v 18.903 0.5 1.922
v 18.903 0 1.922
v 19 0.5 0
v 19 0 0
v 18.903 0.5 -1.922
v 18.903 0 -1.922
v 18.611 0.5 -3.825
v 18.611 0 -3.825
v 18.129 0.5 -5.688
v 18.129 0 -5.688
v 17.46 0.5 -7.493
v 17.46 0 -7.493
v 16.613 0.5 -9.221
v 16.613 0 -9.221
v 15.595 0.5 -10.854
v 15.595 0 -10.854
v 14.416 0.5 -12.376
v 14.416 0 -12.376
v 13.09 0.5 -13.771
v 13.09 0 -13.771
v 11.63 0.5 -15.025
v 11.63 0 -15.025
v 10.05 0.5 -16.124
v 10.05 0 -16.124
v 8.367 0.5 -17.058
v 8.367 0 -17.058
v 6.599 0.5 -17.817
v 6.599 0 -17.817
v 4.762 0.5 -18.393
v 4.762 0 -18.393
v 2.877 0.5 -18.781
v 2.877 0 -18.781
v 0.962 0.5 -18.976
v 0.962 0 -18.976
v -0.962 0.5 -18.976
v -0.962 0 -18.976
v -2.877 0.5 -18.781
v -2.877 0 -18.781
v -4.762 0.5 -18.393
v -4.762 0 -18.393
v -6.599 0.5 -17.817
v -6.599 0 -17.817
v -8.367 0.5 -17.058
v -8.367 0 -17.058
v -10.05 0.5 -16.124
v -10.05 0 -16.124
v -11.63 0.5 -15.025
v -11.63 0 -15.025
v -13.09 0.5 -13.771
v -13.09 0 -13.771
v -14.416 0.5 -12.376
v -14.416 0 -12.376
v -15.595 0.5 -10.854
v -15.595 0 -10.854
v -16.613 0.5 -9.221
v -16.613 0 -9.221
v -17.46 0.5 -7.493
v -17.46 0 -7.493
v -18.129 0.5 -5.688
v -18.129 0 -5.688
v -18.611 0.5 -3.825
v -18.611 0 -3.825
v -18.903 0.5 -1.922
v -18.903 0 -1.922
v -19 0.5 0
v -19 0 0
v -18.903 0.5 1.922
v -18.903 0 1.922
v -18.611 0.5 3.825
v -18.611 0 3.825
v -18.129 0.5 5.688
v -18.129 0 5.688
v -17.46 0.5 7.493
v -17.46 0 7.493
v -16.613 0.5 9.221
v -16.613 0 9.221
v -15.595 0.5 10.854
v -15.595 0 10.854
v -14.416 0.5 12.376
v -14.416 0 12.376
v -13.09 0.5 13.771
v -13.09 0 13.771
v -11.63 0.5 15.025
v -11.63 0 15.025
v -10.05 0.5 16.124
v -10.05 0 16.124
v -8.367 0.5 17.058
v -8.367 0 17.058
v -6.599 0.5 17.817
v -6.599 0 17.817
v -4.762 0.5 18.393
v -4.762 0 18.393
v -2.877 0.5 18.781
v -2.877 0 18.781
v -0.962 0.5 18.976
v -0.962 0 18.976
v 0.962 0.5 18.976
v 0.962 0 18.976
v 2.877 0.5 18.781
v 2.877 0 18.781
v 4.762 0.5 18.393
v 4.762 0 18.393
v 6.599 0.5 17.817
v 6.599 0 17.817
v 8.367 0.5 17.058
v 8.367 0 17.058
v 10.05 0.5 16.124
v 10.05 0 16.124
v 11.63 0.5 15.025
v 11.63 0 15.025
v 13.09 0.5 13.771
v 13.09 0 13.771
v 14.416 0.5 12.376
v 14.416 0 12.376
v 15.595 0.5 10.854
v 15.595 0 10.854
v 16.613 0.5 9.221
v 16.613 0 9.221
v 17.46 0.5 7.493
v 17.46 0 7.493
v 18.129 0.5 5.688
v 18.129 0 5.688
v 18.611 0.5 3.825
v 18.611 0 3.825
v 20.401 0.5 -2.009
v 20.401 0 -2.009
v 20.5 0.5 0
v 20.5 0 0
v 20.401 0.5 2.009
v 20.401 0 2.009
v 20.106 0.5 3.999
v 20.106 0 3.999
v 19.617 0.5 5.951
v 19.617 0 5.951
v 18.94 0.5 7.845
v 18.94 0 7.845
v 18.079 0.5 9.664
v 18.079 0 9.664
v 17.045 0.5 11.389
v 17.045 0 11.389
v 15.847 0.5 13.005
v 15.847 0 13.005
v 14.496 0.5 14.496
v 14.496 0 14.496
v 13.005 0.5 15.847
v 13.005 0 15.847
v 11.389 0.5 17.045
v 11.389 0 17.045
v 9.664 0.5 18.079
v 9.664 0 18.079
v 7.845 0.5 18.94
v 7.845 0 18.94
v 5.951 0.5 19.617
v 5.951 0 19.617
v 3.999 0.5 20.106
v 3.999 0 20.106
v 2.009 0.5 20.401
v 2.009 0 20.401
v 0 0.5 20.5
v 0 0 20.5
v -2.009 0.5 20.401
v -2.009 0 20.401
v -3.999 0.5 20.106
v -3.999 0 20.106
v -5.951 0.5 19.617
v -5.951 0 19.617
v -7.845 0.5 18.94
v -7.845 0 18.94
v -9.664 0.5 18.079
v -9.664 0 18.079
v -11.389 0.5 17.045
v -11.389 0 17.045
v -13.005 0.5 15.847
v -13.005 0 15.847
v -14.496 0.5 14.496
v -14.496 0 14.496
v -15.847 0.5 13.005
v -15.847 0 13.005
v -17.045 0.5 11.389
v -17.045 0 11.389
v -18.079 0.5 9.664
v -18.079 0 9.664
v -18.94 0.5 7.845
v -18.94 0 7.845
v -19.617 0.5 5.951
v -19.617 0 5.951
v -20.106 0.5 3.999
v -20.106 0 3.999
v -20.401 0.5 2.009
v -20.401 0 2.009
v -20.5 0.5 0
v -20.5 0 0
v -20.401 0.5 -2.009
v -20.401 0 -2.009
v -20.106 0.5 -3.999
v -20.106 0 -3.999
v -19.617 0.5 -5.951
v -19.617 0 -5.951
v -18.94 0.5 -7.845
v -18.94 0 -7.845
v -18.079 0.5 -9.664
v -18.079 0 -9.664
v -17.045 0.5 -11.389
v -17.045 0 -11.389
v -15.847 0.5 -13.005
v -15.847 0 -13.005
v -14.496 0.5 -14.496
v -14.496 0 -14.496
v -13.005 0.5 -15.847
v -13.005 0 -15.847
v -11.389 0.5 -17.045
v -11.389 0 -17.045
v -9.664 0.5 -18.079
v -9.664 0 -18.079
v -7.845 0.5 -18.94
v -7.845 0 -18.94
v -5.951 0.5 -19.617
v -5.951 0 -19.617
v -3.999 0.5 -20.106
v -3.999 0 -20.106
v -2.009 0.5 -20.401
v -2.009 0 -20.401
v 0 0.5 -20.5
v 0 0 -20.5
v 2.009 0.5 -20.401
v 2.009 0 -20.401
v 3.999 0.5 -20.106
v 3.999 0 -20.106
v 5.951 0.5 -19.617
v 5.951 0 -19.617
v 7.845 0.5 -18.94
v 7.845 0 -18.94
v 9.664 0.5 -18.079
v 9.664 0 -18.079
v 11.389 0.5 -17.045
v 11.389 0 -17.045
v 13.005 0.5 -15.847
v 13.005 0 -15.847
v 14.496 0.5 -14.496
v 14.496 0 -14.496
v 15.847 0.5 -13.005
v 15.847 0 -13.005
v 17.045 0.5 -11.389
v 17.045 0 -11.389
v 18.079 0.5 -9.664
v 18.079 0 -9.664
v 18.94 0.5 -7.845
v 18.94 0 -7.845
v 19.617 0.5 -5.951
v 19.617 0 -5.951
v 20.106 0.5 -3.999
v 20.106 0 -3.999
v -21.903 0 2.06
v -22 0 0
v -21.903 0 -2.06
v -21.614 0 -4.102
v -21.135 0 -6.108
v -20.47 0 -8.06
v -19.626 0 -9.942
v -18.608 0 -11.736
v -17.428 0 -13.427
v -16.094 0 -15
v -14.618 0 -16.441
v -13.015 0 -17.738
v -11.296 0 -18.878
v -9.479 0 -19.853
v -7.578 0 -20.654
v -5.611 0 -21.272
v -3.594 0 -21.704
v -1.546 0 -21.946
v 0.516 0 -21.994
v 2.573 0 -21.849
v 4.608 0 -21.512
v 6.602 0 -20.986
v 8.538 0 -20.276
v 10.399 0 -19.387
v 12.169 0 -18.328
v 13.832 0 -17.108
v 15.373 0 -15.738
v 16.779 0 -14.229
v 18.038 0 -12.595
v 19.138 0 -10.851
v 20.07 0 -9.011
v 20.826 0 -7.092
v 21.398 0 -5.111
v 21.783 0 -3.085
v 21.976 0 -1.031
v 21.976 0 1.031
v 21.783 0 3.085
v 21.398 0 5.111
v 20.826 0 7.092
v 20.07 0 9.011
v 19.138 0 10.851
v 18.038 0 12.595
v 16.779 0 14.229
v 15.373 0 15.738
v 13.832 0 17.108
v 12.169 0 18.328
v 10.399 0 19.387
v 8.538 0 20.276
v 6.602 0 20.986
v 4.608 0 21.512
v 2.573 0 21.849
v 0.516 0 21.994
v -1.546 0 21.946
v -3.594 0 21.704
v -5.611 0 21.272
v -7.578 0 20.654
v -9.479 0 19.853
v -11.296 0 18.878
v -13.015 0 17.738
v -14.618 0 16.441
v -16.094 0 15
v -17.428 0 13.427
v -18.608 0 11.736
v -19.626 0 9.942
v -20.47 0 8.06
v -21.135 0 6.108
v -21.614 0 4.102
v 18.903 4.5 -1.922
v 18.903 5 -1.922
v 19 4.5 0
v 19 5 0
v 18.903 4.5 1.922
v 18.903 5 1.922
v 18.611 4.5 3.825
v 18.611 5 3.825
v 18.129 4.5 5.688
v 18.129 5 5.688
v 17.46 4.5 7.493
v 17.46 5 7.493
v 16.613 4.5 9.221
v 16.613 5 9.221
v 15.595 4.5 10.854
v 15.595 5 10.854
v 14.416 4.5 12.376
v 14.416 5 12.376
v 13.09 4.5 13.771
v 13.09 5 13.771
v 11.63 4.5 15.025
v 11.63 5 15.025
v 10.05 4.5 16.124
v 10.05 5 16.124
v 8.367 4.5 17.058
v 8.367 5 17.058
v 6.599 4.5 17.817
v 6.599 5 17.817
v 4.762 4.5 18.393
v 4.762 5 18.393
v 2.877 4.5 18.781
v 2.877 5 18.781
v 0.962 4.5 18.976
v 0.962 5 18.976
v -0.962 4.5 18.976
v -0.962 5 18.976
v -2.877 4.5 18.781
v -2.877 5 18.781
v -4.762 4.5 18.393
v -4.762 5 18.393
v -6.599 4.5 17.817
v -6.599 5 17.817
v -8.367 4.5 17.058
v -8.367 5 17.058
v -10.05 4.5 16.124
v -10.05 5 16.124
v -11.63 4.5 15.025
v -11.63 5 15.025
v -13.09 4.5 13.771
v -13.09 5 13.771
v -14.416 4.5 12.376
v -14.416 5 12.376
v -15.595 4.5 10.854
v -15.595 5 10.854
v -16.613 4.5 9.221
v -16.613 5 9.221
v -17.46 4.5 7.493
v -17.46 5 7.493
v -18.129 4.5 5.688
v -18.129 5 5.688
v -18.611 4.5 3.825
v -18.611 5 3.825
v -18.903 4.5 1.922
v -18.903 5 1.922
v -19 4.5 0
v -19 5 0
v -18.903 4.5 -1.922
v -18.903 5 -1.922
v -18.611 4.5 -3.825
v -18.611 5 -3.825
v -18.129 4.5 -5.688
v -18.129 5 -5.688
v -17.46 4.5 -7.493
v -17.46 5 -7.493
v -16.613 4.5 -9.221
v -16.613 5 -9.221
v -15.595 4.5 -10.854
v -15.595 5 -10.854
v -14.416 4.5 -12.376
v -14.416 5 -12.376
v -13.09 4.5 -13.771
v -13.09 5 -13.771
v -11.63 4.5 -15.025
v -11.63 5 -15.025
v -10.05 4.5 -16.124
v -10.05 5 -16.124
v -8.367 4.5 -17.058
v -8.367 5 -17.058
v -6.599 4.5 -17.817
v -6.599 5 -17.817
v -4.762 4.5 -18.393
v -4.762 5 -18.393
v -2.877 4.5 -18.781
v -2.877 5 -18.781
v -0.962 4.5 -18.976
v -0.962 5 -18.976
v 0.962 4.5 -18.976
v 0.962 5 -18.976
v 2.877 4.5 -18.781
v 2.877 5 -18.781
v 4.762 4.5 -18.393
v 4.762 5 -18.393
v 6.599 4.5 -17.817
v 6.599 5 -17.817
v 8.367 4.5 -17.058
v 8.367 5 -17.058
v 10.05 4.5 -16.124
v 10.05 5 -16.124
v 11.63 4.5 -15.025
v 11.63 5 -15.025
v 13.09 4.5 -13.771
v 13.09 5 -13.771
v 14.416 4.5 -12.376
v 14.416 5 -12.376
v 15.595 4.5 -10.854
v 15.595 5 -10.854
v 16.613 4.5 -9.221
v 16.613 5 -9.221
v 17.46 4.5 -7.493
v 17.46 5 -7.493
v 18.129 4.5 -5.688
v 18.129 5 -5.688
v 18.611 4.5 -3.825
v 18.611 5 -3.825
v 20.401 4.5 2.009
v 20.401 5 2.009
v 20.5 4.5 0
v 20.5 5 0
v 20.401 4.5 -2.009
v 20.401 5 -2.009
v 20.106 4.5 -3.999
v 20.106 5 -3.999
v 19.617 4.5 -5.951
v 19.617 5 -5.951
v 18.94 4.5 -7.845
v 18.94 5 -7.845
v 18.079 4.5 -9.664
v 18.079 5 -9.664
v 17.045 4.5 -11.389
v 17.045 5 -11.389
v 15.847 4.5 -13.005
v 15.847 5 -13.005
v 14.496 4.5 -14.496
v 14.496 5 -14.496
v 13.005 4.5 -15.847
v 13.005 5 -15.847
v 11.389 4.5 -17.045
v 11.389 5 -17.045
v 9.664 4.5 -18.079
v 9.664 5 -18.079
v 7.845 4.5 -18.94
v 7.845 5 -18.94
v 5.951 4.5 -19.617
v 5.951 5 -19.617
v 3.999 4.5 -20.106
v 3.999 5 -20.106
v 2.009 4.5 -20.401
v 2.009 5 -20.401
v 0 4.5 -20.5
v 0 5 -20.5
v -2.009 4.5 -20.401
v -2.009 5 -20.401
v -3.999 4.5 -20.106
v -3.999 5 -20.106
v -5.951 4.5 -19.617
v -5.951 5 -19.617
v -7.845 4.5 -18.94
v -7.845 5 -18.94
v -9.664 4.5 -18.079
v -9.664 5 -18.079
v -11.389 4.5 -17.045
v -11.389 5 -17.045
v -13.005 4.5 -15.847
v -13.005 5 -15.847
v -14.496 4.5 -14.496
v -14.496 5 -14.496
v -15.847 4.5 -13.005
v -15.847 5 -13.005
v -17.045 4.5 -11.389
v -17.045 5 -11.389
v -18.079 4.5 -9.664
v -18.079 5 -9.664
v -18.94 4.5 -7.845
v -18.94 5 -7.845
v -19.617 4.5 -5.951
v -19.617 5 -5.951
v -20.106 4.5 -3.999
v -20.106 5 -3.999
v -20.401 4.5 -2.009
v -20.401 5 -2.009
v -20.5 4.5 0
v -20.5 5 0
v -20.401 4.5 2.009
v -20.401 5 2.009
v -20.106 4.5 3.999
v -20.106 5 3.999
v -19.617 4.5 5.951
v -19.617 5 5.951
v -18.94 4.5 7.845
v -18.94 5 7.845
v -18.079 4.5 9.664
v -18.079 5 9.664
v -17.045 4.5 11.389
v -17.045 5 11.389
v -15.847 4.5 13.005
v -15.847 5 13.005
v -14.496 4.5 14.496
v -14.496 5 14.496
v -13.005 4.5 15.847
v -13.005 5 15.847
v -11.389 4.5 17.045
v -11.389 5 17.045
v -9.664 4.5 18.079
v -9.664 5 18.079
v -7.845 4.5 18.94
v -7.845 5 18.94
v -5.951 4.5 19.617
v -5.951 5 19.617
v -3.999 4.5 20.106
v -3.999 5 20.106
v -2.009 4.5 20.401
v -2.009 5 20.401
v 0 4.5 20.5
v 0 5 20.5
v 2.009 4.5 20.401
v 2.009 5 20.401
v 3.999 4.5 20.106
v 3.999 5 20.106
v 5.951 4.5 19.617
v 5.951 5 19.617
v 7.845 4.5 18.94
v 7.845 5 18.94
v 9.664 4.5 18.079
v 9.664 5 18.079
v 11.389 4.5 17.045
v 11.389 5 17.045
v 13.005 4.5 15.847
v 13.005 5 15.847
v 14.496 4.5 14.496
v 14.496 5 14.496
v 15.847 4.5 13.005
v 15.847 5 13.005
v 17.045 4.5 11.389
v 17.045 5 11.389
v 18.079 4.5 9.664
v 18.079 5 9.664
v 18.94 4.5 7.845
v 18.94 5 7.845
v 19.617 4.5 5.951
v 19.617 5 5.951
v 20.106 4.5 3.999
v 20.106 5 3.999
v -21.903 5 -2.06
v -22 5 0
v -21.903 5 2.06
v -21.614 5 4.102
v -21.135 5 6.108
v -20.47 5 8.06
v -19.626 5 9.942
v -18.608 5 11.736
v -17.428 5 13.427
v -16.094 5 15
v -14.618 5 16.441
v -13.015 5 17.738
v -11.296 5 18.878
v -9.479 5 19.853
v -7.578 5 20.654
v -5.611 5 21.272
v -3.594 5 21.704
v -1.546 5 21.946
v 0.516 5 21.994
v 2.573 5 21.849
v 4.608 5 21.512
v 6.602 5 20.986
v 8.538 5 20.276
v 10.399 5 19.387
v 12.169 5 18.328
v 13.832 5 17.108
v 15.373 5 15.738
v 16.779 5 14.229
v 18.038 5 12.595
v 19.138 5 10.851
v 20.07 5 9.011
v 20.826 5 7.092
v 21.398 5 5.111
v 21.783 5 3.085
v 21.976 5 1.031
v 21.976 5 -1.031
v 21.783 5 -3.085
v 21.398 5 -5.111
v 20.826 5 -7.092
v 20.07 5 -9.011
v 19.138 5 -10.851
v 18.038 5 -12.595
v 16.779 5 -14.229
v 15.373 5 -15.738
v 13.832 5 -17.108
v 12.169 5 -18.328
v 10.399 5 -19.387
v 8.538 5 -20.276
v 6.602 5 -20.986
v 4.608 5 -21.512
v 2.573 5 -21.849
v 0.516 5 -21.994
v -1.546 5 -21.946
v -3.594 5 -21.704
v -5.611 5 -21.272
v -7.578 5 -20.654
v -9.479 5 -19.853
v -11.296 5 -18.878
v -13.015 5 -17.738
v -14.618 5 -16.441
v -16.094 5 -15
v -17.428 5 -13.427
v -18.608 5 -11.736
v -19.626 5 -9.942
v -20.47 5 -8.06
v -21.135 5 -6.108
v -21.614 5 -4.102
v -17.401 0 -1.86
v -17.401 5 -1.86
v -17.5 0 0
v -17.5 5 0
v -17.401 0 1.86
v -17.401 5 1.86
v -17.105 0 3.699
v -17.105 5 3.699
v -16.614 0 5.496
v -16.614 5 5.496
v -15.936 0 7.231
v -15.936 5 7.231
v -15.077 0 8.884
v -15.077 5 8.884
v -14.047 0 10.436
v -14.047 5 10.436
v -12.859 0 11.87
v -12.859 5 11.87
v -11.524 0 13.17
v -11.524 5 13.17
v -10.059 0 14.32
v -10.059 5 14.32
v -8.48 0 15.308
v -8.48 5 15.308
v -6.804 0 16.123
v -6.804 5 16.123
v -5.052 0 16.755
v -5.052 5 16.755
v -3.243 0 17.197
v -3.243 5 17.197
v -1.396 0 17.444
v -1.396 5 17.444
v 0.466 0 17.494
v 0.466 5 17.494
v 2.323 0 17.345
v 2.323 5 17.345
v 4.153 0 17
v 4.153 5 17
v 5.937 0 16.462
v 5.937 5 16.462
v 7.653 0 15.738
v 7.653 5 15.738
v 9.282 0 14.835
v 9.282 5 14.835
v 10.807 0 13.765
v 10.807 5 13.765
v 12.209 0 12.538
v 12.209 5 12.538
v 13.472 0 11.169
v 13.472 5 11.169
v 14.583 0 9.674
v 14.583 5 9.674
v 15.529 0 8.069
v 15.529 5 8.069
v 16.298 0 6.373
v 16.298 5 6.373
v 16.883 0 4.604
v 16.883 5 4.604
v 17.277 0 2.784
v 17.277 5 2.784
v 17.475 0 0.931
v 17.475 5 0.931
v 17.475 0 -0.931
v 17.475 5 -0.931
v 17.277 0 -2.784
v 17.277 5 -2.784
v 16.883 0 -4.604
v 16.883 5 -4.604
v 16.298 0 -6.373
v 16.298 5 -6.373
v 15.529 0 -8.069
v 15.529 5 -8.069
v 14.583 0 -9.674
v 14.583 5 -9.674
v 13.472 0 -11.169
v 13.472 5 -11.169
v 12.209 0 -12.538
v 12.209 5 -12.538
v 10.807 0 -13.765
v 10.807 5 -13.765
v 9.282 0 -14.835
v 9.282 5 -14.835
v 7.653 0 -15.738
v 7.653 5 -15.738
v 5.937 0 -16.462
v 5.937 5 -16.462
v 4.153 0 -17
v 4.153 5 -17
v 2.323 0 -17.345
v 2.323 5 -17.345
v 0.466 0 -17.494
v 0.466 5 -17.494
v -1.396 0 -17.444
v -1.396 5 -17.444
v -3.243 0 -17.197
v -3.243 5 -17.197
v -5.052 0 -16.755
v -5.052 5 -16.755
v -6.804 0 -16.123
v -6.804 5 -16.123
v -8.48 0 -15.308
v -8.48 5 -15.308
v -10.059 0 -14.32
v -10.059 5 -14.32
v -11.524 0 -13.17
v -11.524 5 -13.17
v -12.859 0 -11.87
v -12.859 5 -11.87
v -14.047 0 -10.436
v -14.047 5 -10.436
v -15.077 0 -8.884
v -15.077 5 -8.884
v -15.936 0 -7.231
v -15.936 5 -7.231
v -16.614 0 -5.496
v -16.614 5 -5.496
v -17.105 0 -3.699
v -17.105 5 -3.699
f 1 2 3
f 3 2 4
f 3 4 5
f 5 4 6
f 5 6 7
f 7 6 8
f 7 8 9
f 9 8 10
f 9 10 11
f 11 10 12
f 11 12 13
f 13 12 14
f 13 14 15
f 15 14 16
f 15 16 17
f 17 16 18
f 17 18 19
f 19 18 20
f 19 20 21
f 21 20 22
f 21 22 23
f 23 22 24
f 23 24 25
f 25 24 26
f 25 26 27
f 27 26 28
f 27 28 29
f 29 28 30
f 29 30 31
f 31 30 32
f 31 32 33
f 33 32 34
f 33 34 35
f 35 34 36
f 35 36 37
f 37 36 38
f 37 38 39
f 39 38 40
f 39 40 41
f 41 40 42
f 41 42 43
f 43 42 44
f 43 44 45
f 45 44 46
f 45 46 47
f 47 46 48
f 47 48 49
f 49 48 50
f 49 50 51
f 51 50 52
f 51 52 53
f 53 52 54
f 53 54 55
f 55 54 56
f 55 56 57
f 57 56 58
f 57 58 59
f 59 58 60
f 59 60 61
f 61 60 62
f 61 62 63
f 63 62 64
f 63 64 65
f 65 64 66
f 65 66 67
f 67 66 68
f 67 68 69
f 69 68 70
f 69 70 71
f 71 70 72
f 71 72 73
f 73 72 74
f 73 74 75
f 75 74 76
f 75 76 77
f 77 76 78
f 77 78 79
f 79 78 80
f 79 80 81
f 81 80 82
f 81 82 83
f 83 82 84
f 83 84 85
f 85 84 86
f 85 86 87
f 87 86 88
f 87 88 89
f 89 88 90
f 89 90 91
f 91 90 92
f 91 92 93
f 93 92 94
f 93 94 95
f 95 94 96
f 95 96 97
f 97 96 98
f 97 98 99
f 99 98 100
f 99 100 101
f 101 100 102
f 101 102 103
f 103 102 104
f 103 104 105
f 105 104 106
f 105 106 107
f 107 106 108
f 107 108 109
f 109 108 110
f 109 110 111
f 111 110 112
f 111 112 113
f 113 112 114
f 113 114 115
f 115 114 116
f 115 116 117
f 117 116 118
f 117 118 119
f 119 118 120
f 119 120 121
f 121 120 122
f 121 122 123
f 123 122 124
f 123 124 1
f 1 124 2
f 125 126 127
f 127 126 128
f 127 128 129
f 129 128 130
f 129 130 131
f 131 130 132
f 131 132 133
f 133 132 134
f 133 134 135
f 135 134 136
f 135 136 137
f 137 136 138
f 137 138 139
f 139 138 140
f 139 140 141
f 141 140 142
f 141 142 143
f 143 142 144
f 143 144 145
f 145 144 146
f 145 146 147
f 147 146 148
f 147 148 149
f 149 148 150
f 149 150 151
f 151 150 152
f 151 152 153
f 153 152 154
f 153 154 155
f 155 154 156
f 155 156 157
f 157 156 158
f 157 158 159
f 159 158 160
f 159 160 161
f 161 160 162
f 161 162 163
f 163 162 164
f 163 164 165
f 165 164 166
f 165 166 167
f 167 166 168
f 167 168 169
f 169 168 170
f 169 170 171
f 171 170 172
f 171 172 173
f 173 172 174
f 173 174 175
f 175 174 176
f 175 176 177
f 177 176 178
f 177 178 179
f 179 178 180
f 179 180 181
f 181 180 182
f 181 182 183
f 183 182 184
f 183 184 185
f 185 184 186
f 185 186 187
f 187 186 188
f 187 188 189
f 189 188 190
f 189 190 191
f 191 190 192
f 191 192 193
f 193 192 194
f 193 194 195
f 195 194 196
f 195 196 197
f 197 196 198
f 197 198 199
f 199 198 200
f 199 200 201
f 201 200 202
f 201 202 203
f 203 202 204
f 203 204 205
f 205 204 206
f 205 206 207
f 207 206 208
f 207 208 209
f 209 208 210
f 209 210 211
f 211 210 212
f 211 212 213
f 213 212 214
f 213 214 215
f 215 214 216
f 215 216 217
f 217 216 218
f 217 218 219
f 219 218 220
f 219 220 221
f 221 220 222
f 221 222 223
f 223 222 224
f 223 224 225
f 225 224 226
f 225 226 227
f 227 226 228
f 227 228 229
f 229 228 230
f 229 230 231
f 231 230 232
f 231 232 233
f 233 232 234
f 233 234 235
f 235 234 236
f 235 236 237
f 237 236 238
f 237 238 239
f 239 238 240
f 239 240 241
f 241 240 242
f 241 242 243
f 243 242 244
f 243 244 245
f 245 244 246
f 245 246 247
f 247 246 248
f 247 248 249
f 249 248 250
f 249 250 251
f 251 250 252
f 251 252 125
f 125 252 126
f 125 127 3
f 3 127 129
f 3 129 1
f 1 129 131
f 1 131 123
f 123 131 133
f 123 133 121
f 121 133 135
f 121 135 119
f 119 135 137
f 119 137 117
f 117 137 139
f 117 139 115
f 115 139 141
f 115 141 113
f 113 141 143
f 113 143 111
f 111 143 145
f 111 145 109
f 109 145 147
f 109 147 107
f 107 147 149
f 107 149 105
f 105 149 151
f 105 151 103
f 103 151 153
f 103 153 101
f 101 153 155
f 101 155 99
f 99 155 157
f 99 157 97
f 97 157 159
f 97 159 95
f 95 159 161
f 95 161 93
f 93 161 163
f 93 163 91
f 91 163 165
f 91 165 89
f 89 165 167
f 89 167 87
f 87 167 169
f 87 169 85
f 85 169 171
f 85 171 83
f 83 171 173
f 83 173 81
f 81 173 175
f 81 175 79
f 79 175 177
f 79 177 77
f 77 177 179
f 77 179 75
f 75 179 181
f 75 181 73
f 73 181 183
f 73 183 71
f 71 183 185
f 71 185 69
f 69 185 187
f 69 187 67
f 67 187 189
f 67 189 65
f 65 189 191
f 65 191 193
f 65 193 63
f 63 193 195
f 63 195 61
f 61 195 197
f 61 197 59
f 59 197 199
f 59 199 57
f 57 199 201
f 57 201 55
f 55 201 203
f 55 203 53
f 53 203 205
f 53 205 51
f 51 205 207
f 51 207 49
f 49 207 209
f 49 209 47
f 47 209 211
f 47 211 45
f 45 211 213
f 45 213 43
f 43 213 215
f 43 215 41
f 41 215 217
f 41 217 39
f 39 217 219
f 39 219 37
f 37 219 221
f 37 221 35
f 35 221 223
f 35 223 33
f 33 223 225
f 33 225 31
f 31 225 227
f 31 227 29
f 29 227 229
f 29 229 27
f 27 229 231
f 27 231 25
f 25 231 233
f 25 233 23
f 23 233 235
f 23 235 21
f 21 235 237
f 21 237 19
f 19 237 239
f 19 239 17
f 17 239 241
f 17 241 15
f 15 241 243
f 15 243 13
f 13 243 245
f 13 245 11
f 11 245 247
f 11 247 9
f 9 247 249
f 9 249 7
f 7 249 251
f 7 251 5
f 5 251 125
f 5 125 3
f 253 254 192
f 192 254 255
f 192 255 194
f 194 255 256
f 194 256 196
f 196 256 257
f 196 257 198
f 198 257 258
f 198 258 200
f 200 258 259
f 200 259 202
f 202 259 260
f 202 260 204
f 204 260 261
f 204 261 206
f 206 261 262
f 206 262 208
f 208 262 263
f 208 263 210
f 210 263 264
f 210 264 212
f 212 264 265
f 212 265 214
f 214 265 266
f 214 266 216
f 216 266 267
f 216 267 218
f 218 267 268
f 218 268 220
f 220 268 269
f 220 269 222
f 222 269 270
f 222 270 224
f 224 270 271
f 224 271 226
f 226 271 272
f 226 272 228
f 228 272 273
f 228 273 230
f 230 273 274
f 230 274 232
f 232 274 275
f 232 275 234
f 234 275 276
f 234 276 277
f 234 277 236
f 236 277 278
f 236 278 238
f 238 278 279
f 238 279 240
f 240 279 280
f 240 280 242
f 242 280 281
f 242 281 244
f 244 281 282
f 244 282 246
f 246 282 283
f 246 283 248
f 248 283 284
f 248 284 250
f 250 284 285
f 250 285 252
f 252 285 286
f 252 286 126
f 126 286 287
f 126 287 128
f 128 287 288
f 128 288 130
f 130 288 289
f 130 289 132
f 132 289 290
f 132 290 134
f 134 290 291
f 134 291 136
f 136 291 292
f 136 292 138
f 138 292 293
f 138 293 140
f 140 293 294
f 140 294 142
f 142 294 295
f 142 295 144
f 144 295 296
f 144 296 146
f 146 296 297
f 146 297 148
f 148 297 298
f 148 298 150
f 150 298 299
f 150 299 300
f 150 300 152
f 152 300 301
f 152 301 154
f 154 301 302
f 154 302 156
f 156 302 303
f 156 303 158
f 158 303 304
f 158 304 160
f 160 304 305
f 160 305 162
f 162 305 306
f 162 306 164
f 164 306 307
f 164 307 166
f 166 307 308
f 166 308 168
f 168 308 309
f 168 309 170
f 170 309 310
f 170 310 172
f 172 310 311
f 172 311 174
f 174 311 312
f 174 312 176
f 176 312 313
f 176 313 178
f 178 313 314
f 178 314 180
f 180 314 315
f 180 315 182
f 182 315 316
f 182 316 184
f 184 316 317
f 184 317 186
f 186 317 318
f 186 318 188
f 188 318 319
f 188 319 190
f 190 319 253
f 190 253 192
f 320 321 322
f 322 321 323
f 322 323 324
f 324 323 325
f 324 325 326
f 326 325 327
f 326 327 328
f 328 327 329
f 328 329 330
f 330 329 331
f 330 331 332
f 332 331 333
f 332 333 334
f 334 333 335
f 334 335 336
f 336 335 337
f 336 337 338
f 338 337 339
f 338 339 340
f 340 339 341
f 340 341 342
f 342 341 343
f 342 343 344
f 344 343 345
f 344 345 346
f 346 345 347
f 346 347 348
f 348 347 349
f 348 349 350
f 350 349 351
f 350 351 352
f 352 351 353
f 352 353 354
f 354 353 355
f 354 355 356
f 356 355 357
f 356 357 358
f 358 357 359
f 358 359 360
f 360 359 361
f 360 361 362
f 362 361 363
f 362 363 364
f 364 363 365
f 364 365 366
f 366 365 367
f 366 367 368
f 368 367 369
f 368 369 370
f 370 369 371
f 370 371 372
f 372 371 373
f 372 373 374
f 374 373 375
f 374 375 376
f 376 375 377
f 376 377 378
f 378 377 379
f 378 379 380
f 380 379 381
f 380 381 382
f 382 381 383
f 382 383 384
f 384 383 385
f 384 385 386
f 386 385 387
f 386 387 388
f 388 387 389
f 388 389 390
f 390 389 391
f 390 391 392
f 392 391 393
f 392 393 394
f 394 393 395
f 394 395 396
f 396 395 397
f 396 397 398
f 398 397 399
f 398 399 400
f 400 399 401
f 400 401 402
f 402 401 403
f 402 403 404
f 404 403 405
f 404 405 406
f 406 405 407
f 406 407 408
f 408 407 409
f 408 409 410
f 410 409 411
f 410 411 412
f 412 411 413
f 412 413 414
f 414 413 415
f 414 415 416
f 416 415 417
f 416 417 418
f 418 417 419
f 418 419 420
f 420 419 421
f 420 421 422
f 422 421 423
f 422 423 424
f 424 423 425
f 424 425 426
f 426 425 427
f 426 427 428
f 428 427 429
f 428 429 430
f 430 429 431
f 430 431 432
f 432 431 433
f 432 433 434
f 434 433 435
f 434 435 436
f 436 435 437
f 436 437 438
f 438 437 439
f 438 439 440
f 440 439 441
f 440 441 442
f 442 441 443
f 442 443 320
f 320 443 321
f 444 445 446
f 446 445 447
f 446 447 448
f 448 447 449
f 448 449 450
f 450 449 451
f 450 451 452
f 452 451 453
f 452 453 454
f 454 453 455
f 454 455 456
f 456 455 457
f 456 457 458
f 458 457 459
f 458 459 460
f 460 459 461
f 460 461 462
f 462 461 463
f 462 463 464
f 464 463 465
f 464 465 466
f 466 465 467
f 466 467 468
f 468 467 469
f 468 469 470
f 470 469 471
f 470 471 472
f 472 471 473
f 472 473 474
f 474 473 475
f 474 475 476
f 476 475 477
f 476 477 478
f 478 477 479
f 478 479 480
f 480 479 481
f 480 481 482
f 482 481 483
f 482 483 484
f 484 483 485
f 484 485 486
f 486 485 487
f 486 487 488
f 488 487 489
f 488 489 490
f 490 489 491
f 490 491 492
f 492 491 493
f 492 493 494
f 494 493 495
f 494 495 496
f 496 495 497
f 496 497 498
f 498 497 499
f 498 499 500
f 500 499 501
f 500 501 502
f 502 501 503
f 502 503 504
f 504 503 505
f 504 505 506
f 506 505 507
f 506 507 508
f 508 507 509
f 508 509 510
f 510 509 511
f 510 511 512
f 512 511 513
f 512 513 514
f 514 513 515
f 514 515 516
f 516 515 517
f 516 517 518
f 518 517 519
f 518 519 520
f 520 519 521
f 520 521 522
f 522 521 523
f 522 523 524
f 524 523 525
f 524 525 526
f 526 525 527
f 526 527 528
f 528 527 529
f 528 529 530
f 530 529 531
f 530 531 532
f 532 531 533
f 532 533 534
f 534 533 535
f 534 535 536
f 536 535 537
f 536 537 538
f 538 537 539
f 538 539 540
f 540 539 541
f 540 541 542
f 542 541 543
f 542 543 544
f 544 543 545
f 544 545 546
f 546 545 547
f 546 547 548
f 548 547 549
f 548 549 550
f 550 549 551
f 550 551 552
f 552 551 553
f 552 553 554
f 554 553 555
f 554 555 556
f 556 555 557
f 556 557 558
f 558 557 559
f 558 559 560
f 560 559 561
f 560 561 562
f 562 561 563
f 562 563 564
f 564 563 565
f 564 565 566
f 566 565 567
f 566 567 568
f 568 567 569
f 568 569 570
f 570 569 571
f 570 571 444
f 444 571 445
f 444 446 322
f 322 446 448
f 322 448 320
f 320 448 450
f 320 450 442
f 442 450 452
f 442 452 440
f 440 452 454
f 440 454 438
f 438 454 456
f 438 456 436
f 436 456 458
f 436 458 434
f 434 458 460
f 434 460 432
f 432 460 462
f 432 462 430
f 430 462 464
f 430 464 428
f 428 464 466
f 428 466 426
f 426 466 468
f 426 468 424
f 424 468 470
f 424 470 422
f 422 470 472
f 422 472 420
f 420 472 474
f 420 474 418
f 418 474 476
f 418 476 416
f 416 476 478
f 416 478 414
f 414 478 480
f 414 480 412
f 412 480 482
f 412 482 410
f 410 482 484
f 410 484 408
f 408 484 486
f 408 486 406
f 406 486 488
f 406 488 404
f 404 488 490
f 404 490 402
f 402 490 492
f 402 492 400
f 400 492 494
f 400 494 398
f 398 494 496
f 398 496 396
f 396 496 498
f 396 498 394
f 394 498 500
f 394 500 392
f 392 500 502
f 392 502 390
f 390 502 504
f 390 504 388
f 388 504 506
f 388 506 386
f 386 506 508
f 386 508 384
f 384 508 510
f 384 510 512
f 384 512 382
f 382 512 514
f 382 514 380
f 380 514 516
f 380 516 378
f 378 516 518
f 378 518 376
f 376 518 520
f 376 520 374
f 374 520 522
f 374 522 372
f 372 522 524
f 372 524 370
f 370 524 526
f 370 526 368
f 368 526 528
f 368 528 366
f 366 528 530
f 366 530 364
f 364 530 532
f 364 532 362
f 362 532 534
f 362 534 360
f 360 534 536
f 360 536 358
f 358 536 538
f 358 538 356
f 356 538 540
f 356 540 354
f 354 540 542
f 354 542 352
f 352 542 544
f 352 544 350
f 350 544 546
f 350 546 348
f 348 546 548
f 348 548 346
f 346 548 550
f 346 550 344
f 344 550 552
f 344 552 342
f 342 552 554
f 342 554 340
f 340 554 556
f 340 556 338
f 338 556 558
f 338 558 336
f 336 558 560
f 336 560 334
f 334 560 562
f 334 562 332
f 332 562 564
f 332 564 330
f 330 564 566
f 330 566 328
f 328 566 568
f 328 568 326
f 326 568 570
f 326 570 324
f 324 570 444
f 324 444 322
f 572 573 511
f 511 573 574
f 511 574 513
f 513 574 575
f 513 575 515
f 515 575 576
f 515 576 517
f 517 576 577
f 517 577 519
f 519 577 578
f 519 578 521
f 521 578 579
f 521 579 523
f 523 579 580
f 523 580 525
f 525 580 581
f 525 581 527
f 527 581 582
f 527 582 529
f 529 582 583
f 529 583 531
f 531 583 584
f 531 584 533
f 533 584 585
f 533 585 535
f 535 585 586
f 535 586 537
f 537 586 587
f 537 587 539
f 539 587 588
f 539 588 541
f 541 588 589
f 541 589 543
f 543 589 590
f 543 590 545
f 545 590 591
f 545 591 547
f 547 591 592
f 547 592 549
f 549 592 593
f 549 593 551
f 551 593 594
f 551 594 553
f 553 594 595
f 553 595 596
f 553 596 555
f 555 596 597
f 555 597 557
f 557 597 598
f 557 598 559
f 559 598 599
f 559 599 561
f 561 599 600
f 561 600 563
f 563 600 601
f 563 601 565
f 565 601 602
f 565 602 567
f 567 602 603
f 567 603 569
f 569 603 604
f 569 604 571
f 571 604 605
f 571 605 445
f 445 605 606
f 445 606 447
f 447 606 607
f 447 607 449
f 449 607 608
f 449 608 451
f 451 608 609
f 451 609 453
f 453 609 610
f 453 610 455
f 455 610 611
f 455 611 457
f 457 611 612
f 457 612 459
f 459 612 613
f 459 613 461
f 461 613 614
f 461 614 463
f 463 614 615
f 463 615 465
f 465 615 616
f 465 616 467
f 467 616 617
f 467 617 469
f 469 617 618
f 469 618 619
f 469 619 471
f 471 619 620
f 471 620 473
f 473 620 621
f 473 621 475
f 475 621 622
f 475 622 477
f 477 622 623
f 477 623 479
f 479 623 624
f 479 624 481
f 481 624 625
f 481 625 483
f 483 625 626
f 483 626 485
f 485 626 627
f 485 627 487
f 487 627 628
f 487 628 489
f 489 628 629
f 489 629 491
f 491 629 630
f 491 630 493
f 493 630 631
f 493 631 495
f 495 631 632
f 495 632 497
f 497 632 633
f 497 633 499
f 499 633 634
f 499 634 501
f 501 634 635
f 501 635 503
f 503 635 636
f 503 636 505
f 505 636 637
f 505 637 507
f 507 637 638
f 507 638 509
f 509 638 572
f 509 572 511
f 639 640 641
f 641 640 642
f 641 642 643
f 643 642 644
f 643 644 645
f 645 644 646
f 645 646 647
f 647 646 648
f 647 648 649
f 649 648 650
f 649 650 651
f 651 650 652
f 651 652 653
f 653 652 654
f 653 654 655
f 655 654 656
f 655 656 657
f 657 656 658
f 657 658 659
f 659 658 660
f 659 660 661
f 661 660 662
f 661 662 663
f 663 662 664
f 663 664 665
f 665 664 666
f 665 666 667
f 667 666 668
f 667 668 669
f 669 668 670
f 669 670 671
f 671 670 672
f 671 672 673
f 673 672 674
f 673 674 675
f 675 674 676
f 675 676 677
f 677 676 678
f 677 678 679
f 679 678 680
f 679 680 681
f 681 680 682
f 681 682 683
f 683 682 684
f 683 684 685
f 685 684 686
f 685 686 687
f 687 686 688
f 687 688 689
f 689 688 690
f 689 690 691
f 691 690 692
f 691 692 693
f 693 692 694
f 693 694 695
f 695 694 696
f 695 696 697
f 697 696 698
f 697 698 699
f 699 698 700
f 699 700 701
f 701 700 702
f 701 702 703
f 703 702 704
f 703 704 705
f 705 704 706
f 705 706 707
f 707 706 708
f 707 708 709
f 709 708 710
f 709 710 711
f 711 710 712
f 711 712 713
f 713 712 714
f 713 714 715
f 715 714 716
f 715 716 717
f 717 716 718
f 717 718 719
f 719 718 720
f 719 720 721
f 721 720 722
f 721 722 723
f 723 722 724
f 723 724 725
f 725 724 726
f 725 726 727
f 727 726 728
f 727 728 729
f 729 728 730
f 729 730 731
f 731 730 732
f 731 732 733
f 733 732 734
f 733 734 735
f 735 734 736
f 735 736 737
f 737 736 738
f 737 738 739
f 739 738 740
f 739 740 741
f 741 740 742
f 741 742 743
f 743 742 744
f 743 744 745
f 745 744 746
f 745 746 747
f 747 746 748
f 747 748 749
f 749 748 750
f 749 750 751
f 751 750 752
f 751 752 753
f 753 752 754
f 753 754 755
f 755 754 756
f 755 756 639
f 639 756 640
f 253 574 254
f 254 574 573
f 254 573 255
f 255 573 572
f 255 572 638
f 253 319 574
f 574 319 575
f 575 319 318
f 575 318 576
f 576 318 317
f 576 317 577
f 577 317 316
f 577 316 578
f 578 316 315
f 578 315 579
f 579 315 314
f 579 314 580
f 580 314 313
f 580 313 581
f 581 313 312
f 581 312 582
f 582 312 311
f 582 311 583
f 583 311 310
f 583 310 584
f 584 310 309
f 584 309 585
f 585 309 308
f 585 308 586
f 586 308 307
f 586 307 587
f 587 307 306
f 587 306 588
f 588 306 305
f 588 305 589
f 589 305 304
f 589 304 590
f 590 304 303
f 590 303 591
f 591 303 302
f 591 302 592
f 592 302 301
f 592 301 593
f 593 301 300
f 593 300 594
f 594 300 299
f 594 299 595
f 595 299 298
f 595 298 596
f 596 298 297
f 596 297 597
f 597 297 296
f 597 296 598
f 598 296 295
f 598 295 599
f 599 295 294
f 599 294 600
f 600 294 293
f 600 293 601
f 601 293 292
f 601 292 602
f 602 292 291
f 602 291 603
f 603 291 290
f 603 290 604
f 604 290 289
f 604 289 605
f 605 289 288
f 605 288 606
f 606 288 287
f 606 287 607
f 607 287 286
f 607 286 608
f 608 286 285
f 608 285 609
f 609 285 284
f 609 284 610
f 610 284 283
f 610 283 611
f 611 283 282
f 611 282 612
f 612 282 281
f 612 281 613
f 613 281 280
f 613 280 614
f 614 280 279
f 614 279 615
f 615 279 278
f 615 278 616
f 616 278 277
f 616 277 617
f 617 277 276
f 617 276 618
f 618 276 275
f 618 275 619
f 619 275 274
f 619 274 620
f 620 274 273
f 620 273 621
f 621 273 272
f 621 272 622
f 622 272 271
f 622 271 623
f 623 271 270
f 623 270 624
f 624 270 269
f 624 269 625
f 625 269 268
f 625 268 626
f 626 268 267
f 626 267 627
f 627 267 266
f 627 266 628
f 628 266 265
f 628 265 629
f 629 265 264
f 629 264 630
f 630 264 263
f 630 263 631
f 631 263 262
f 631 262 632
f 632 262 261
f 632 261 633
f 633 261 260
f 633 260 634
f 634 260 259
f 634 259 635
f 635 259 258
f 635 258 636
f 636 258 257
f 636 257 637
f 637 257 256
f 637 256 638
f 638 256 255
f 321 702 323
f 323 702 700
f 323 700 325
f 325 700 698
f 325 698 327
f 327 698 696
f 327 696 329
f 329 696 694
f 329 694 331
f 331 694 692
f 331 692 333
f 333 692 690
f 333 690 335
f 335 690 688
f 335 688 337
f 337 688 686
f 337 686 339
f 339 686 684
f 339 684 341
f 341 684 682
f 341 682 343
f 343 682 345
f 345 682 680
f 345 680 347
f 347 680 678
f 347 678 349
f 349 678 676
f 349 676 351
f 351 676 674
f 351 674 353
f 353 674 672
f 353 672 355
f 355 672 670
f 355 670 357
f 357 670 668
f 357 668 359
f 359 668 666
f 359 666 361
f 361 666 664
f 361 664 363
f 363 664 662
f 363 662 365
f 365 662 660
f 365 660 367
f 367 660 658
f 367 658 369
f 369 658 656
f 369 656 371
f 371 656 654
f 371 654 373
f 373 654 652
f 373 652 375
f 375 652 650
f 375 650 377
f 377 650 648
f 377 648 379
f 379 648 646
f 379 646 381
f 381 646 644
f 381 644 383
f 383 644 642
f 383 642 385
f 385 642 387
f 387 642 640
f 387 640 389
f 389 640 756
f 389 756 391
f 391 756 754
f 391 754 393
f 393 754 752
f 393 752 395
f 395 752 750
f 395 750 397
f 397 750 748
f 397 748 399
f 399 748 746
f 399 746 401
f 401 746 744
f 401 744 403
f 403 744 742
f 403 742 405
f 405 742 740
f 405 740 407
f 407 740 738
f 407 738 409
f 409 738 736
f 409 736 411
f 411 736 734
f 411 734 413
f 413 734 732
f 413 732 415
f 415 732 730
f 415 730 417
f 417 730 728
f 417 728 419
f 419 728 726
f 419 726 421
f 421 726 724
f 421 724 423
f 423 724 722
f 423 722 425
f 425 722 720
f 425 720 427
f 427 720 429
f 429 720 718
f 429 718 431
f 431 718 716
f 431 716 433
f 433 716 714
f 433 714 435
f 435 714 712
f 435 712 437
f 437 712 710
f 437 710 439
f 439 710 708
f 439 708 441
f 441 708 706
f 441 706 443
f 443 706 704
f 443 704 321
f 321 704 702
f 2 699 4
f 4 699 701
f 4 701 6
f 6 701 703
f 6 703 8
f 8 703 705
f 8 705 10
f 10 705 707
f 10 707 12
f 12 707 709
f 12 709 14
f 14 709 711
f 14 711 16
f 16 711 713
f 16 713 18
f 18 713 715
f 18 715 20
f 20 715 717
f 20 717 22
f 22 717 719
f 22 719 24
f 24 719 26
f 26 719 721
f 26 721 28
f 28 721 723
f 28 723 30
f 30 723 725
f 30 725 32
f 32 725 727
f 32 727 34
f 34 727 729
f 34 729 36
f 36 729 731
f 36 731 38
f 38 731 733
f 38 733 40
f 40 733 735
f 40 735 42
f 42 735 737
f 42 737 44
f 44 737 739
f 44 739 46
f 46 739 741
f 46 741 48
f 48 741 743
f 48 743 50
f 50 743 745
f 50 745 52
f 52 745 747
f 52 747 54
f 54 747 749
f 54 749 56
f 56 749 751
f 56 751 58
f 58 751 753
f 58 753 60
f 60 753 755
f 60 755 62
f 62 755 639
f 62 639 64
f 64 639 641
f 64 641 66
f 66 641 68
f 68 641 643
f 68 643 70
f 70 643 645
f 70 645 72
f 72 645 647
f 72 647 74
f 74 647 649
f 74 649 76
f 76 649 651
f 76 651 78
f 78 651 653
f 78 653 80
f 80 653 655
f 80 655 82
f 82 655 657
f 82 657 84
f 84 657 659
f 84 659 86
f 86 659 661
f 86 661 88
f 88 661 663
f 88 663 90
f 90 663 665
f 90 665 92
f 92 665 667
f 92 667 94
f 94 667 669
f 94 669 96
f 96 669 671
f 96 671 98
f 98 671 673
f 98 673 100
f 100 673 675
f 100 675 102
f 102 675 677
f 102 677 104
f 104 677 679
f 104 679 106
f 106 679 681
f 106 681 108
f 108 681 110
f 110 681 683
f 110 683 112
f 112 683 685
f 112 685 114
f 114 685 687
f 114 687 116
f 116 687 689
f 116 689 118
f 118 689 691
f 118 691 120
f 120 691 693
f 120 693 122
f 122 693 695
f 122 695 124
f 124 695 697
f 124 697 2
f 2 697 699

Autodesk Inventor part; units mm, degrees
ref_plane "YZ Plane" through (0, 0, 0) normal (1, 0, 0) x (0, 1, 0)
ref_plane "XZ Plane" through (0, 0, 0) normal (0, 1, 0) x (-1, 0, 0)
ref_plane "XY Plane" through (0, 0, 0) normal (0, 0, 1) x (1, 0, 0)
sketch "Sketch1" plane through (0, 0, 0) normal (0, 1, 0) x (-1, 0, 0)
  circle A0 centre (0, 0) radius 17.5
  circle A1 centre (0, 0) radius 22
  dimension "d0" = 35
  dimension "d1" = 44
extrude "Extrusion1" add sketch "Sketch1" along normal blind 5
sketch "Sketch2" plane through (0, 5, 0) normal (0, 1, 0) x (1, 0, 0)
  circle A0 centre (0, 0) radius 22 projected
  circle A1 centre (0, 0) radius 17.5 projected
  circle A2 centre (0, 0) radius 19
  circle A3 centre (0, 0) radius 20.5
  dimension "d4" = 38
  dimension "d5" = 41
extrude "Extrusion2" cut sketch "Sketch2" against normal blind 0.5 contours A3
sketch "Sketch3" plane through (0, 0, 0) normal (0, -1, 0) x (1, 0, 0)
  circle A0 centre (0, 0) radius 19 projected
  circle A1 centre (0, 0) radius 20.5 projected
extrude "Extrusion3" cut sketch "Sketch3" against normal blind 0.5
properties part number "bearing_35_44_5" material "Stainless Steel"
